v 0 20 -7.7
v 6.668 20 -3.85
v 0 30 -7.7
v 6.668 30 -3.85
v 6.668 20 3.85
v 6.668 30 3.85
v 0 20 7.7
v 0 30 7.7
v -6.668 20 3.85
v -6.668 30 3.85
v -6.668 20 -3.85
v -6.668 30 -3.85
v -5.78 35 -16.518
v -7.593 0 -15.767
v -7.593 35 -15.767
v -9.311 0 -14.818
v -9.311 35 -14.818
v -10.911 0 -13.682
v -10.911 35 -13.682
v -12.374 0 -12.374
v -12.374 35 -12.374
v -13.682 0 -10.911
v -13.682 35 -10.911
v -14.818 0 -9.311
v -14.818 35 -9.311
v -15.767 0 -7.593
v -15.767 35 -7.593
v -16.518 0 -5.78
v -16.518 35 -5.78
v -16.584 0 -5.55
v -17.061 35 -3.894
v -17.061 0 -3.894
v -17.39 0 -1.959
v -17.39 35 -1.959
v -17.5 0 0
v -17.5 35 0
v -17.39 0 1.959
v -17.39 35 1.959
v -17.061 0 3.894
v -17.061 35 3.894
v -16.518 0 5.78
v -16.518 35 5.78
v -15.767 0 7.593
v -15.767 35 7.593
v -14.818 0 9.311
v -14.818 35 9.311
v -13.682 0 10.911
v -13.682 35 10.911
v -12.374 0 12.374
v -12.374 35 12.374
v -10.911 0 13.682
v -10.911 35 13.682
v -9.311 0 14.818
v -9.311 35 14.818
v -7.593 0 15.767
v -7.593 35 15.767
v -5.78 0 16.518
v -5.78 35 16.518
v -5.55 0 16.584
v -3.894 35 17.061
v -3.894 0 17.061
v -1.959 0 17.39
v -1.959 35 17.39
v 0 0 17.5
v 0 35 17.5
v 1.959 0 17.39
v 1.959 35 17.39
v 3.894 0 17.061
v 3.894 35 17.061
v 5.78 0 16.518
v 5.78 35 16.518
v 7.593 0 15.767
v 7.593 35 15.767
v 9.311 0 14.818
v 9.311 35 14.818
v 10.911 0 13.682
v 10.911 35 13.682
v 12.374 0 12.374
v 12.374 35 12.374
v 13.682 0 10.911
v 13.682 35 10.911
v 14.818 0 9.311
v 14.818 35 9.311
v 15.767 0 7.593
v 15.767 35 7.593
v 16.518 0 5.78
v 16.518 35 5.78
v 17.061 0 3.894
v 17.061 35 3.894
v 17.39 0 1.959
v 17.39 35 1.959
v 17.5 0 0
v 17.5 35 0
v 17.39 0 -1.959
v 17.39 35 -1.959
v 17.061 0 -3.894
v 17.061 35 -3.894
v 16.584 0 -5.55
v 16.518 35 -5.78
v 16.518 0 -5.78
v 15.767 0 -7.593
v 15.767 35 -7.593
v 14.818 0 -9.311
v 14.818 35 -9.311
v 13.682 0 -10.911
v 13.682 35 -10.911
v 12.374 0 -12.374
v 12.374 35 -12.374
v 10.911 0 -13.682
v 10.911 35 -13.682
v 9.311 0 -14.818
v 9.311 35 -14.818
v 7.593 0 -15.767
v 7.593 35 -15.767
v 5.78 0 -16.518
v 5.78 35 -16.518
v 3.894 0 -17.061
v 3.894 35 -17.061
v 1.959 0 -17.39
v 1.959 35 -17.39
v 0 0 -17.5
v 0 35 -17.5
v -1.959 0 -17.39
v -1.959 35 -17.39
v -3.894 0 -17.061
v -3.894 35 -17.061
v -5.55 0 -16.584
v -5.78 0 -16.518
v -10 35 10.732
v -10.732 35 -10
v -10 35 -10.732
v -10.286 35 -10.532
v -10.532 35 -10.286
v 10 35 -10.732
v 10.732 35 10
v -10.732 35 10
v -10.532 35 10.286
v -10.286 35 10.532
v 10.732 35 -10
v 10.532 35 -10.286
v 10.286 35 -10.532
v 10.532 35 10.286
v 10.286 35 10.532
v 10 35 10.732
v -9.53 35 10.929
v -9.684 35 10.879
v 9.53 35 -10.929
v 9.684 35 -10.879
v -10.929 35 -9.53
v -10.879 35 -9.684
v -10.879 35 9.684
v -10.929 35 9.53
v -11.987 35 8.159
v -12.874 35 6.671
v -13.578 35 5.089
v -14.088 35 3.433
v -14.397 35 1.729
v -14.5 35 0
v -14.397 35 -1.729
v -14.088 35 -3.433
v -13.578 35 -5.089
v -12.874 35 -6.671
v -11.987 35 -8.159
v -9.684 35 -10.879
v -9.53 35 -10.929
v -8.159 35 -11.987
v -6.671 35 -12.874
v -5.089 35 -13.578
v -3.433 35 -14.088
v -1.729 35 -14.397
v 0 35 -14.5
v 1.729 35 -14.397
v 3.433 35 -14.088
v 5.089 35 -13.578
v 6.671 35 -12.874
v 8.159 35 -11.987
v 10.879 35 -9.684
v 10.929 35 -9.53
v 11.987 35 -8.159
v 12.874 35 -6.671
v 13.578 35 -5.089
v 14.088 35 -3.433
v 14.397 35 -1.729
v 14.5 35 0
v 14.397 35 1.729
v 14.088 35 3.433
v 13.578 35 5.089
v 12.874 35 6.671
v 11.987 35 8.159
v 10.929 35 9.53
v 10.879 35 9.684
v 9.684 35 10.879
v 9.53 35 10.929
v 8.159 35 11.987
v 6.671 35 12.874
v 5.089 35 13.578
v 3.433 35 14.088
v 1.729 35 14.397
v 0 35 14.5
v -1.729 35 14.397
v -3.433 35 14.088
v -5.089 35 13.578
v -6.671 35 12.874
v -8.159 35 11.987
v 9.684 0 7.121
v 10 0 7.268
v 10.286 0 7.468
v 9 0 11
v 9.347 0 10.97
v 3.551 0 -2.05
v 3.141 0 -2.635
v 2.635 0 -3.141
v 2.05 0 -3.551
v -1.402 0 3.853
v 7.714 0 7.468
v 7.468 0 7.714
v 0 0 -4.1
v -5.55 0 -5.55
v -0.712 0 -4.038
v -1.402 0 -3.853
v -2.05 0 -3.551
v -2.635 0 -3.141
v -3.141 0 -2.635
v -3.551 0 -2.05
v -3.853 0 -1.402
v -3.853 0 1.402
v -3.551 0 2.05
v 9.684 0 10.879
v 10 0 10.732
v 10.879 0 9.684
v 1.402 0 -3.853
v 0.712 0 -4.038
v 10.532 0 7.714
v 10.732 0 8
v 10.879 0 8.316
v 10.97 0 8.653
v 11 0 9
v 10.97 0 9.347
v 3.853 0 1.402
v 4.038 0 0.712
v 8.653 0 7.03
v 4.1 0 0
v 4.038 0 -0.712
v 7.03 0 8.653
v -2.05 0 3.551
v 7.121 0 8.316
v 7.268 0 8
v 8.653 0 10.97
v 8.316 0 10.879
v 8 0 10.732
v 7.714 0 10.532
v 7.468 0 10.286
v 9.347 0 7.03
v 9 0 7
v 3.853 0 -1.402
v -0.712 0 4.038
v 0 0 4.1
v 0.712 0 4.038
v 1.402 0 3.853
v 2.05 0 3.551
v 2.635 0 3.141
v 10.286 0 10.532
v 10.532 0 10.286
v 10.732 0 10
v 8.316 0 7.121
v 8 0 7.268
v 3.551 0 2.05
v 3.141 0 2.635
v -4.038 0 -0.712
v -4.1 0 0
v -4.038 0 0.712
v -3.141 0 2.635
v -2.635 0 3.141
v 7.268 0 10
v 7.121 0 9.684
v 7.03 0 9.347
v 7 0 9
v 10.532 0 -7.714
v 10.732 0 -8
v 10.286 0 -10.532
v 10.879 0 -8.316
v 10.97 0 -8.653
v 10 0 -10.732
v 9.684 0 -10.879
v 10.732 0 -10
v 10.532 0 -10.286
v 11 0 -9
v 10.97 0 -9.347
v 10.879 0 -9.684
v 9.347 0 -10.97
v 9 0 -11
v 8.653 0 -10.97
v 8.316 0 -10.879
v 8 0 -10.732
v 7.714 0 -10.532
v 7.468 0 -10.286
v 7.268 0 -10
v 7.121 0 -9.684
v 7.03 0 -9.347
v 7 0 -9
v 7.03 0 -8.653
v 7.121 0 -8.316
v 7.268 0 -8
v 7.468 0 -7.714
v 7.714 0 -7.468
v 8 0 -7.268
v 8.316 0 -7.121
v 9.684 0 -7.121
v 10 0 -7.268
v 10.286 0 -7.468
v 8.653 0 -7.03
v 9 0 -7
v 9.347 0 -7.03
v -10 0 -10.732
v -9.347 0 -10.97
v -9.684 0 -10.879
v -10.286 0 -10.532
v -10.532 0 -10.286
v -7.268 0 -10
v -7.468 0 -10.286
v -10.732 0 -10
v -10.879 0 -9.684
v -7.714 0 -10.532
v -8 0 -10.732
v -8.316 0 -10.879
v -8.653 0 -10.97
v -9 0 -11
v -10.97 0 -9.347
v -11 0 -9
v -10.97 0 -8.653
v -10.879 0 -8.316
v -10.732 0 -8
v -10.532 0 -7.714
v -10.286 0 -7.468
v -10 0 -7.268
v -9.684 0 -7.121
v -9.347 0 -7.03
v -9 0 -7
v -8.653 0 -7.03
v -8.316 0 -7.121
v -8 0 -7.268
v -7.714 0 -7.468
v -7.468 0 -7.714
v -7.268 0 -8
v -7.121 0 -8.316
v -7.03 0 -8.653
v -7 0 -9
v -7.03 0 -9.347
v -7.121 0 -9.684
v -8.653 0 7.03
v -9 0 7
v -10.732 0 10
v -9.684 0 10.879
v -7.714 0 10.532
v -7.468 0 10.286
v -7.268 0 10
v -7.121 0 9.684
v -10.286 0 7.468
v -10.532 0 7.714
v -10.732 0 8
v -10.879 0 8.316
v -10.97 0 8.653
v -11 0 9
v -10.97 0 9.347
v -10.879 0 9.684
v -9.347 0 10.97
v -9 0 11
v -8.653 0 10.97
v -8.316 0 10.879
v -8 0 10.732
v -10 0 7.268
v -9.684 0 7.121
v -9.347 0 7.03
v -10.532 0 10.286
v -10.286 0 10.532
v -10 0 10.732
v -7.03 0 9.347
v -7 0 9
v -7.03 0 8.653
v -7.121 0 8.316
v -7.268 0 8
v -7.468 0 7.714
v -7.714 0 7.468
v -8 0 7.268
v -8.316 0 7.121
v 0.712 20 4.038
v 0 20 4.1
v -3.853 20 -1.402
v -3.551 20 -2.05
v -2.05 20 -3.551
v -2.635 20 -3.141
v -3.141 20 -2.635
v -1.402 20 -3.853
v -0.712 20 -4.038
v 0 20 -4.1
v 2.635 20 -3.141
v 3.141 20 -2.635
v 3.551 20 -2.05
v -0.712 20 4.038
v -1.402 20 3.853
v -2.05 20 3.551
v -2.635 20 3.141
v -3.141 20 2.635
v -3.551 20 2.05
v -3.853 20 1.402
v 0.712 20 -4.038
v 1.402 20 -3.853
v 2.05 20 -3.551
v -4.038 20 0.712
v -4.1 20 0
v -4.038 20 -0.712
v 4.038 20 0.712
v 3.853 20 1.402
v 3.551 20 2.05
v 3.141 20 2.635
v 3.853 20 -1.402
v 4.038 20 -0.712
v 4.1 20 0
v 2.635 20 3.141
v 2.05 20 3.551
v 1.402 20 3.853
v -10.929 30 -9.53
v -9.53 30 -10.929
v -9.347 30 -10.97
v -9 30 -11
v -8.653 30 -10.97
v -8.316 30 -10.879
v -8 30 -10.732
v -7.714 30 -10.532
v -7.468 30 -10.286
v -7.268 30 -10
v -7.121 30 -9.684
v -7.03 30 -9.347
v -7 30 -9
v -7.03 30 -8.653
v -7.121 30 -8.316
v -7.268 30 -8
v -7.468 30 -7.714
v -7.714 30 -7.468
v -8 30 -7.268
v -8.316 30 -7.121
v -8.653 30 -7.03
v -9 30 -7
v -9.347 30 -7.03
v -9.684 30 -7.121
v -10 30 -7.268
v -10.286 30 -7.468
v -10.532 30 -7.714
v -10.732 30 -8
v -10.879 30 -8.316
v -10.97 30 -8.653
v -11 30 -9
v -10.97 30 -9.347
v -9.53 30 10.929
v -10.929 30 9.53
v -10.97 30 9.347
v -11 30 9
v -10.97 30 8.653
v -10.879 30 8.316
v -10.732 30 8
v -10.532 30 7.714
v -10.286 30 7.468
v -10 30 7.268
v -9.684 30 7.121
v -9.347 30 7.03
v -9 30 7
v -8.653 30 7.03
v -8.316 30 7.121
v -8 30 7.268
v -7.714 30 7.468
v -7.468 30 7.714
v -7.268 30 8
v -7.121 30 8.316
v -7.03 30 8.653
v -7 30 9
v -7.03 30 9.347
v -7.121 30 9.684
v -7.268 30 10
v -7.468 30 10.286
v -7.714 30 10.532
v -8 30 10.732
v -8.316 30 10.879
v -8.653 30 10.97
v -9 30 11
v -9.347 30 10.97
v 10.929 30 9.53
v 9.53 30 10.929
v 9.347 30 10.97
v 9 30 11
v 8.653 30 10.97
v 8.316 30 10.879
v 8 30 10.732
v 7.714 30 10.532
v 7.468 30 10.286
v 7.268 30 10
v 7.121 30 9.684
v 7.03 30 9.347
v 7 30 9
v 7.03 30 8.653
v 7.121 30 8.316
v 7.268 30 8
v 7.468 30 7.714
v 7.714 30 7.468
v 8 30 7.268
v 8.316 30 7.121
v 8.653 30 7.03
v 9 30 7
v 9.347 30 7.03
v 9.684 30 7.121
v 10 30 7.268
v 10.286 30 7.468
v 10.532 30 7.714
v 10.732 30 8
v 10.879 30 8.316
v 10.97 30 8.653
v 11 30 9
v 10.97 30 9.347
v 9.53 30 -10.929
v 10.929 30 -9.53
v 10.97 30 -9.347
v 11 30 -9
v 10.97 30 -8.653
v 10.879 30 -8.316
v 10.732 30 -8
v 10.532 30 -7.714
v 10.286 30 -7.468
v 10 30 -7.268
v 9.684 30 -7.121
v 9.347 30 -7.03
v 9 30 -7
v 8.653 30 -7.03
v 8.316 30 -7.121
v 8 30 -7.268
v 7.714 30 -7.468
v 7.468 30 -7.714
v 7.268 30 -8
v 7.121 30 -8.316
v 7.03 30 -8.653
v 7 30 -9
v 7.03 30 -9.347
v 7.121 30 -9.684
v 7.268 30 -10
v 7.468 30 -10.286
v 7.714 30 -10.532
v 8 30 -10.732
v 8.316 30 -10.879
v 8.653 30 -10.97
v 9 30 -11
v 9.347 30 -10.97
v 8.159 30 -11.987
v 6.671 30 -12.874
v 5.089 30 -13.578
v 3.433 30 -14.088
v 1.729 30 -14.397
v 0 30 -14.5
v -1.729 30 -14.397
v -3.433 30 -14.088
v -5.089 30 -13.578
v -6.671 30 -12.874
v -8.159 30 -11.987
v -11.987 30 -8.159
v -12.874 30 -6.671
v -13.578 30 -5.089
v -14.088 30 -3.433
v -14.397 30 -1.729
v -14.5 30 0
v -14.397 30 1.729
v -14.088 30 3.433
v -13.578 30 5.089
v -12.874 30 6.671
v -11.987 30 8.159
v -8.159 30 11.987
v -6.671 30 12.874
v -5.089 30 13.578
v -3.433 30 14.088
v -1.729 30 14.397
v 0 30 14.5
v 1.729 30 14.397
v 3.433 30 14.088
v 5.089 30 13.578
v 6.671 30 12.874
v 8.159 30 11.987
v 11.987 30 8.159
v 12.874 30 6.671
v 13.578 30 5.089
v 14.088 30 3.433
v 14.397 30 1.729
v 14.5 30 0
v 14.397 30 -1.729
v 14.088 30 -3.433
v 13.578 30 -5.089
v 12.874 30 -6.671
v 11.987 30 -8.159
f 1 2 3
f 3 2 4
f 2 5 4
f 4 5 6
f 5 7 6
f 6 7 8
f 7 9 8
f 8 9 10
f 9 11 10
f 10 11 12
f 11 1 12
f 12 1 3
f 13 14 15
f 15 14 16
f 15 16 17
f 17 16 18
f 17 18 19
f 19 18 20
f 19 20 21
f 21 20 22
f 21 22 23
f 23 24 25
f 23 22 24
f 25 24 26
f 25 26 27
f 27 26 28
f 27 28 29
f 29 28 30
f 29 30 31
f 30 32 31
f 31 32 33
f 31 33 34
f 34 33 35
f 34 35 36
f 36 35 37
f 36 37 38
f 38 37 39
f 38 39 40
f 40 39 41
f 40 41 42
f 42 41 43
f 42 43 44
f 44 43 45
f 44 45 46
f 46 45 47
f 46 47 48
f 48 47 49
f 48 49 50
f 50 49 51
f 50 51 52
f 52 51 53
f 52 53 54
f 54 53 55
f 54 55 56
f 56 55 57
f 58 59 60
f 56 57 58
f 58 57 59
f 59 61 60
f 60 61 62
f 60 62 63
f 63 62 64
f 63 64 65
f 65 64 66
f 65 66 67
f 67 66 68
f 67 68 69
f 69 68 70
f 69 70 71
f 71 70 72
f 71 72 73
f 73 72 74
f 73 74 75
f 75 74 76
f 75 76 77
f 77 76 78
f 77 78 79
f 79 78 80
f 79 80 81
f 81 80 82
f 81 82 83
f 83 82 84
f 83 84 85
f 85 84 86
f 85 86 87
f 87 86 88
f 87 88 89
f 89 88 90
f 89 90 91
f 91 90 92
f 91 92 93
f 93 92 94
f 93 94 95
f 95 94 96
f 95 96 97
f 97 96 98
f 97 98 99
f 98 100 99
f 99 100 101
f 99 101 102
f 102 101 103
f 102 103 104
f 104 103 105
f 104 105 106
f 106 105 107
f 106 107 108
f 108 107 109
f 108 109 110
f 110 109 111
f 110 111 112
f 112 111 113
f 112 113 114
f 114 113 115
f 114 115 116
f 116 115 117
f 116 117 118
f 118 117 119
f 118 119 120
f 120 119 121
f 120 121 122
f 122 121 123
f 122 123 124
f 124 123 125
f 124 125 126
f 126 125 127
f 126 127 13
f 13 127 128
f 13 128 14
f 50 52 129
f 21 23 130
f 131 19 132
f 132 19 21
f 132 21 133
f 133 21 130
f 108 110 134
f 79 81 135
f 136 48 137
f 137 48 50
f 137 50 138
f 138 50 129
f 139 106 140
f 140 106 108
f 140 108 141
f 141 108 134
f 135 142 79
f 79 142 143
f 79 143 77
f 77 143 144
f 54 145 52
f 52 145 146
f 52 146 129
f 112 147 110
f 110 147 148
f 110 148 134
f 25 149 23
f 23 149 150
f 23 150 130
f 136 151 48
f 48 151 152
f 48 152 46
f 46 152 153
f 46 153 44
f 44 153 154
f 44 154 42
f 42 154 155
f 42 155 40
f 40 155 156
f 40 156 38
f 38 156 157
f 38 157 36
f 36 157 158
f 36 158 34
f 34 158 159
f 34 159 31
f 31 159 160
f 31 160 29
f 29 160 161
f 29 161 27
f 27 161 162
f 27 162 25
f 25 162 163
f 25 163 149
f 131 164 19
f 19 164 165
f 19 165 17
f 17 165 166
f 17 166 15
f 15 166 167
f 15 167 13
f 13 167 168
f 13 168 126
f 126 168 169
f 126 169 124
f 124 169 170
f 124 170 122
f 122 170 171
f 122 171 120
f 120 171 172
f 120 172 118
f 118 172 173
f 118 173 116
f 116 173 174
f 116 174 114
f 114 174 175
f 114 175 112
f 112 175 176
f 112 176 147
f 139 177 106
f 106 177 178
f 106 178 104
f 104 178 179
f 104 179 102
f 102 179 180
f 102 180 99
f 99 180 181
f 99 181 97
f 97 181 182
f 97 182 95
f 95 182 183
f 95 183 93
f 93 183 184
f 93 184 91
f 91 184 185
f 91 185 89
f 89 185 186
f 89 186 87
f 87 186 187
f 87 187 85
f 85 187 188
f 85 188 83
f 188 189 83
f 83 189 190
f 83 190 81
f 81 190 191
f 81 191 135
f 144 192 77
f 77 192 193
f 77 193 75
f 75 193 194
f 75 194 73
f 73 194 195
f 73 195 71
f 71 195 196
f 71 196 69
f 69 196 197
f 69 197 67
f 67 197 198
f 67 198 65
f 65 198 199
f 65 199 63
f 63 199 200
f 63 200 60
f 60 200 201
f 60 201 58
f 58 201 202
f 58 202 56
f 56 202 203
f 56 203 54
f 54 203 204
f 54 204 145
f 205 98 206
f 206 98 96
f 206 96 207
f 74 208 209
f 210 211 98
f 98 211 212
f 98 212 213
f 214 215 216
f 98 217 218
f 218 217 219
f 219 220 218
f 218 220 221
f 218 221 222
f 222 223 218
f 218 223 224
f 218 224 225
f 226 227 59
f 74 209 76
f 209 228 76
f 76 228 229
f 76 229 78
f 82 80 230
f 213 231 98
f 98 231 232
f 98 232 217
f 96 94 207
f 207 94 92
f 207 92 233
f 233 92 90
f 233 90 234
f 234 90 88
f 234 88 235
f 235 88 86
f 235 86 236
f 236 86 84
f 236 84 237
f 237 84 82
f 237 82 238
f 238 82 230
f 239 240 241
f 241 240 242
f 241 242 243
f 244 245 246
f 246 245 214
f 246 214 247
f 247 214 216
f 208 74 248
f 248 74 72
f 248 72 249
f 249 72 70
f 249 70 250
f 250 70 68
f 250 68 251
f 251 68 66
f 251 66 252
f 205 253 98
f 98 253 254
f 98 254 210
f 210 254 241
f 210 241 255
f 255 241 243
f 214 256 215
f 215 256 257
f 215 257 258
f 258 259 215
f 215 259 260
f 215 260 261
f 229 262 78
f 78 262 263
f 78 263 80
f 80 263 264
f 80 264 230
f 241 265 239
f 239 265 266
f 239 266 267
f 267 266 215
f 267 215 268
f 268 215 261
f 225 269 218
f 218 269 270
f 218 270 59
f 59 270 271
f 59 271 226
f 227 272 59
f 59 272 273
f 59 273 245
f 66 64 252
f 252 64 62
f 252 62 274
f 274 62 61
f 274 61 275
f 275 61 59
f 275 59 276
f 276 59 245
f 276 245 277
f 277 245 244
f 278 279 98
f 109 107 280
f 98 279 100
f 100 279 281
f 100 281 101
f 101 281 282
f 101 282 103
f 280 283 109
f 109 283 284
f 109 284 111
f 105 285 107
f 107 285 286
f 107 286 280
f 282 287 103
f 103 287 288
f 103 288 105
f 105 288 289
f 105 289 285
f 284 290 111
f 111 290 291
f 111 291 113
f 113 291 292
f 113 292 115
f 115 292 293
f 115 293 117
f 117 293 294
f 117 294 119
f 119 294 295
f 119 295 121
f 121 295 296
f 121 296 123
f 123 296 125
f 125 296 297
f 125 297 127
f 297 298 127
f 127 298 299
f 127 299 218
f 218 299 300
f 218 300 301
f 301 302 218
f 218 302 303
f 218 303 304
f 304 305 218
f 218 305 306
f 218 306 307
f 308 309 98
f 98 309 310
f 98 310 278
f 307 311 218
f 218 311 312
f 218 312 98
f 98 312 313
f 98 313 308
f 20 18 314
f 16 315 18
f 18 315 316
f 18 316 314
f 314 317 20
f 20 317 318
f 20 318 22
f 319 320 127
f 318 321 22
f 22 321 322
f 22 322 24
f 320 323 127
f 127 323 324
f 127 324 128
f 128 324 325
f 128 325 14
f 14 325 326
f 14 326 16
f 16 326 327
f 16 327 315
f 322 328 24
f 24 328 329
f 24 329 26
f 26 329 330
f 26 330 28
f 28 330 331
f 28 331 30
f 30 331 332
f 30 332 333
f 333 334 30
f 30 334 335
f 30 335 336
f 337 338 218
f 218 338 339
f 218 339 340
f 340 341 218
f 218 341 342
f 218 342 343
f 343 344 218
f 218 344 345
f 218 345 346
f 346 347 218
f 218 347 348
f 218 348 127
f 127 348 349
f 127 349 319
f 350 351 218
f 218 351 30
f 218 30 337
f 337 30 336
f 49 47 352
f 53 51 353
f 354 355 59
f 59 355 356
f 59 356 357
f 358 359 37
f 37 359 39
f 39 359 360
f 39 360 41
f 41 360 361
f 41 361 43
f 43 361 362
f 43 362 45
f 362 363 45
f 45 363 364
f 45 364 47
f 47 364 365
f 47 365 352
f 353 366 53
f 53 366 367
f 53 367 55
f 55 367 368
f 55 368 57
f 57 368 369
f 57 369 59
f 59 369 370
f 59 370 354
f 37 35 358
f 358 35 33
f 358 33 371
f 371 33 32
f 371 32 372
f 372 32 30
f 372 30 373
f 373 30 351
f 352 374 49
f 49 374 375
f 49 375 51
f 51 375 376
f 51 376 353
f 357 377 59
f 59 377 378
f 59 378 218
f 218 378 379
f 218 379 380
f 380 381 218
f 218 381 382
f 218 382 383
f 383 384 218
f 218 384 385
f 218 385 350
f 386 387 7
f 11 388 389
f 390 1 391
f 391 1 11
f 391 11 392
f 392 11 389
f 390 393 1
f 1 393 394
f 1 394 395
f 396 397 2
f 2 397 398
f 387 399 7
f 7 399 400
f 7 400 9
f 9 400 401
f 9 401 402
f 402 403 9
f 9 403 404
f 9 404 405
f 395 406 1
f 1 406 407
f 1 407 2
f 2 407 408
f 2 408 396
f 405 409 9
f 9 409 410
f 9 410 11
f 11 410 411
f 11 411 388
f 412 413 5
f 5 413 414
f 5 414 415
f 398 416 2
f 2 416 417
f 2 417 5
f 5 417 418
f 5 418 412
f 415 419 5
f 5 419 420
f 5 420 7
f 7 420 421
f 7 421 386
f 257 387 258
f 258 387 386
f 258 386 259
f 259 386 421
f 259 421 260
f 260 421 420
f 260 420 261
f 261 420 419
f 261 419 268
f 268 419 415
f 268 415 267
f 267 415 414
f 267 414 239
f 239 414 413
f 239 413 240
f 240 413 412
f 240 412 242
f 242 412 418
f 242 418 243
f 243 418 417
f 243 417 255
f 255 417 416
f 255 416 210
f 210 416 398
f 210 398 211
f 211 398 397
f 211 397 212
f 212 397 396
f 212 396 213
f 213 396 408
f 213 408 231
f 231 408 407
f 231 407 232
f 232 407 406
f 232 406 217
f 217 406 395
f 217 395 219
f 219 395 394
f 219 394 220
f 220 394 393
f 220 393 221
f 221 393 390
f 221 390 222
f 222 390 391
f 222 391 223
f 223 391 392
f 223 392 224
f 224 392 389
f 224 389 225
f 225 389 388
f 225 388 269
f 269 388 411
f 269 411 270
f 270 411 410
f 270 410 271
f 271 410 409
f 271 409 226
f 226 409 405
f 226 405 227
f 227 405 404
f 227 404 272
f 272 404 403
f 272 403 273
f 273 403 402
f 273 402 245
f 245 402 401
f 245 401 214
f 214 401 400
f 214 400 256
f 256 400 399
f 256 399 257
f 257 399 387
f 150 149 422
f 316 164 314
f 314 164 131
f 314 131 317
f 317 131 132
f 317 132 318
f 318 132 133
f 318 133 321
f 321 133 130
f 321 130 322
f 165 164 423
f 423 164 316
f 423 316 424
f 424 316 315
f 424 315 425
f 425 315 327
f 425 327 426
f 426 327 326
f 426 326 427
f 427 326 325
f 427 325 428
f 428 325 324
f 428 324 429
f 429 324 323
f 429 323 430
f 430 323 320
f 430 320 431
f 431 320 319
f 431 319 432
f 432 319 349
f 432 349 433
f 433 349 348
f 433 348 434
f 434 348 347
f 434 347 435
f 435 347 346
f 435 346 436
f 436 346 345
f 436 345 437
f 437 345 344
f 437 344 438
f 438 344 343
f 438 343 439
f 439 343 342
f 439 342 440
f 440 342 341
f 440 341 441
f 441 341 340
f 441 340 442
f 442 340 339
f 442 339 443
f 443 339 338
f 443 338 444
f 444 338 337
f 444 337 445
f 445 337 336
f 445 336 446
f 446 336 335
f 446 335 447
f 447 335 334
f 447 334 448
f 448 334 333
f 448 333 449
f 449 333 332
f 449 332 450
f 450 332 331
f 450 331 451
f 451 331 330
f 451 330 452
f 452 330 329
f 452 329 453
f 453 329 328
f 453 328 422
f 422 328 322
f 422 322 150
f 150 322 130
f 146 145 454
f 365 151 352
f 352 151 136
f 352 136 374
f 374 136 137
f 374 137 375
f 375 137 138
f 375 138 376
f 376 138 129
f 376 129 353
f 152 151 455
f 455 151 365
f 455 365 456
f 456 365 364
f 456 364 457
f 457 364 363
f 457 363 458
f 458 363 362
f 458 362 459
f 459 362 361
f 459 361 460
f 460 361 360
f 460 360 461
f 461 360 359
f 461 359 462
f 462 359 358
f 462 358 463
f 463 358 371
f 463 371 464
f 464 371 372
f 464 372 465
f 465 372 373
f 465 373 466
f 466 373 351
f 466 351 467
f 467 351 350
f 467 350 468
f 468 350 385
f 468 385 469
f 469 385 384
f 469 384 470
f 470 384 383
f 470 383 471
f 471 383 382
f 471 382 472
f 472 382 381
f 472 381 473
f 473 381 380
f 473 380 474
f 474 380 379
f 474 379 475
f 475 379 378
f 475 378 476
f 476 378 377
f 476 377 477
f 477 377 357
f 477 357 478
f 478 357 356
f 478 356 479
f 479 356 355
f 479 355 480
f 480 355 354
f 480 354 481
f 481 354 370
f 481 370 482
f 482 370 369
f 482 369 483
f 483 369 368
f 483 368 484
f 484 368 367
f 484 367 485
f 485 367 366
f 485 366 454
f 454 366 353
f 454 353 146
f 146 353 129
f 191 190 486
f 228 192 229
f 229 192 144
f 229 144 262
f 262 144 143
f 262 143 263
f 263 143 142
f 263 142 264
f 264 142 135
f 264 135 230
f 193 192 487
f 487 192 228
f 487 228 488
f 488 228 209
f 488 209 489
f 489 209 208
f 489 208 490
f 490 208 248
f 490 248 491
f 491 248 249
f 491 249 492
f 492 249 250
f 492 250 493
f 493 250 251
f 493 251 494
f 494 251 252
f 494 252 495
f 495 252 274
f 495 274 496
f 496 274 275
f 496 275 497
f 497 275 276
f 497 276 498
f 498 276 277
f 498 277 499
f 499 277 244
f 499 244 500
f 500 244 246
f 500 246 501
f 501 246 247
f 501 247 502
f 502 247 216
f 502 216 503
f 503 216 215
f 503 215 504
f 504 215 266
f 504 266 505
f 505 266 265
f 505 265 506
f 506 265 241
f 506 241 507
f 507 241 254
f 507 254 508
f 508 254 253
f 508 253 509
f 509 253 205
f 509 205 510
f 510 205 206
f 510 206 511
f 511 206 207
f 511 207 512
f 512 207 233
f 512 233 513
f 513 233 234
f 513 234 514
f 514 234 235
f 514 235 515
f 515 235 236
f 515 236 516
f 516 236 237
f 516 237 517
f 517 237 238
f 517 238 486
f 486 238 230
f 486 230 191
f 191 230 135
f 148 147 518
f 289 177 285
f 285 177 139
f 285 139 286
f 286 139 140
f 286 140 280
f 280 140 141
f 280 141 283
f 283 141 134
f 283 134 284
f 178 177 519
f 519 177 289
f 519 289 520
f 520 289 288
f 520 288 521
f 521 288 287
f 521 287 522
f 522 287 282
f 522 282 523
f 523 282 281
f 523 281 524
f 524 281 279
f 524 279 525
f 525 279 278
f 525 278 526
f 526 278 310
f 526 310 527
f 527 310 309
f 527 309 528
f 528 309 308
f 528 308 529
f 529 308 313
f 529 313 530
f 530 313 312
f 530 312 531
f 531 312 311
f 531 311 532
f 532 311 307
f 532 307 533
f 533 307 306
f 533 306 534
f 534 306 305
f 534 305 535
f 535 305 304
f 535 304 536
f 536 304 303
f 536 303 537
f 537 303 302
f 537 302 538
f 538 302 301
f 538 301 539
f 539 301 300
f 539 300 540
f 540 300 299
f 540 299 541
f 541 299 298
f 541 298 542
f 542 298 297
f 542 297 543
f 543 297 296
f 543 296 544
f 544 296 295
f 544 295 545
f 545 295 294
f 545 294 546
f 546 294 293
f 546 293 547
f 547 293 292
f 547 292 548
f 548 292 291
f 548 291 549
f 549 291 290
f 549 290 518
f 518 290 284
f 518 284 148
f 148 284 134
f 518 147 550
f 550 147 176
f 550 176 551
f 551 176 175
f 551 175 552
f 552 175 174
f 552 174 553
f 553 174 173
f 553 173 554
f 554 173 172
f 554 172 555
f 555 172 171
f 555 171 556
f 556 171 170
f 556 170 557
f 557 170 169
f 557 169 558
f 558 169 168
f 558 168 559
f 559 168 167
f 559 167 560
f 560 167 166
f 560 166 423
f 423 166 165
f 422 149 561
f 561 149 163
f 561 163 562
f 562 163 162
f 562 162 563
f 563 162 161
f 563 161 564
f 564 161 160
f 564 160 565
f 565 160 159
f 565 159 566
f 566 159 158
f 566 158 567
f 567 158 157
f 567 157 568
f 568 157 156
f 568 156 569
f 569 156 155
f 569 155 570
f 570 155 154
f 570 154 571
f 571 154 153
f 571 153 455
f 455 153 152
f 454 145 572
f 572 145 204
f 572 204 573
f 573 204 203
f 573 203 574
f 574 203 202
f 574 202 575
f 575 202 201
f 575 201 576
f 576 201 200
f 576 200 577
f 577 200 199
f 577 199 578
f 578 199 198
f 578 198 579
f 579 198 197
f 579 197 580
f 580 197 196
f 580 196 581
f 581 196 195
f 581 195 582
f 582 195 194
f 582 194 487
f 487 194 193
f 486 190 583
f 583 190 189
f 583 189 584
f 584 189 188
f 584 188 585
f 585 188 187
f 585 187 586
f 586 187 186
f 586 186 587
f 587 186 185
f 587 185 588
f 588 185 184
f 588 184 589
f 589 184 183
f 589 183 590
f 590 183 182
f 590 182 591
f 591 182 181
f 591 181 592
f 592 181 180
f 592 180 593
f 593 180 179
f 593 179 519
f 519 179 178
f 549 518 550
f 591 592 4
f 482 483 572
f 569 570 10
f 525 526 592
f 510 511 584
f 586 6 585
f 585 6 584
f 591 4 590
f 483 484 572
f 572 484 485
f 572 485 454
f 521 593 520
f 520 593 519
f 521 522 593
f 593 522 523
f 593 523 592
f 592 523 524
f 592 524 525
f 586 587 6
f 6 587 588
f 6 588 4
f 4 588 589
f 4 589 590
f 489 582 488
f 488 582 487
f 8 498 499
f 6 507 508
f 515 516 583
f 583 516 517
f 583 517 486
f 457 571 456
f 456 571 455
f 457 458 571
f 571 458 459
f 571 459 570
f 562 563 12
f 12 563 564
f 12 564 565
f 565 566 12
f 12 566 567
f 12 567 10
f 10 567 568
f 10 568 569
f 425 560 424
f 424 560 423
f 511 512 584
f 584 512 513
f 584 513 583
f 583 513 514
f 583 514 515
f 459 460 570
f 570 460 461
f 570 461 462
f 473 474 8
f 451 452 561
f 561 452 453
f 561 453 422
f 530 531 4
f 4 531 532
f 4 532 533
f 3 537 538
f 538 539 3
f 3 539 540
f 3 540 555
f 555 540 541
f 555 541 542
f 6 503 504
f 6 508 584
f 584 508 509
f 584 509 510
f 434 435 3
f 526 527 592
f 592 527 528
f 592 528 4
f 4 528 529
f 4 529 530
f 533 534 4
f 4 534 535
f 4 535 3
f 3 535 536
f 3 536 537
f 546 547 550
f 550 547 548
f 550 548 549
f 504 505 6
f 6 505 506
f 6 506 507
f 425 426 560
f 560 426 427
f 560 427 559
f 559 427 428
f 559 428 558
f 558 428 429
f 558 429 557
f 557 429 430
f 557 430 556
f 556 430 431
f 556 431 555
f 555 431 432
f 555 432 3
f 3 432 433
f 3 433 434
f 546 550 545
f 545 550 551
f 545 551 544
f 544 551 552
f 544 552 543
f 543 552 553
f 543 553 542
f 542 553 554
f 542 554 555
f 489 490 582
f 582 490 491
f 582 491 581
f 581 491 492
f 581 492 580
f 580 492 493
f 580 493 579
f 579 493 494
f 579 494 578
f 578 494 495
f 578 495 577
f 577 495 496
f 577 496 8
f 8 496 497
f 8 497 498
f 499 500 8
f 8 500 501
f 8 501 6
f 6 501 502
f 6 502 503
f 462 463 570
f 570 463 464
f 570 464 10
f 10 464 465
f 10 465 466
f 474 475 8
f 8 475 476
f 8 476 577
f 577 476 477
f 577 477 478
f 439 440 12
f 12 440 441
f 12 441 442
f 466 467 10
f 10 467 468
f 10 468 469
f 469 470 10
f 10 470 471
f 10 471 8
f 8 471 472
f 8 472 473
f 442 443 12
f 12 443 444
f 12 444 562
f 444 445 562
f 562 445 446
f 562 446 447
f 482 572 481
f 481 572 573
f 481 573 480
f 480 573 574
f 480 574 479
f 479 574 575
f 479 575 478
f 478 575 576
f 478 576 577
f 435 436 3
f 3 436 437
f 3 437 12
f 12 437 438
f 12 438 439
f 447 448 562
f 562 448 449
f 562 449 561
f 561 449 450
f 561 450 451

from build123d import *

# Parameters (mm, degrees)
SKETCH1_R           = 17.5
BOSS_EXTRUDE1_DEPTH = 35
CUT_EXTRUDE1_DEPTH  = 15
SKETCH3_R           = 4.1
CUT_EXTRUDE2_DEPTH  = 32.819805153
SKETCH4_R           = 2
CUT_EXTRUDE3_DEPTH  = 43.866070499
SKETCH5_R           = 14.5
CUT_EXTRUDE4_DEPTH  = 5


with BuildPart() as part:
    # Sketch1 → Boss-Extrude1 (new body)
    with BuildSketch(Plane(origin=(0, 0, 0), x_dir=(1, 0, 0), z_dir=(0, 1, 0))):
        with Locations(Location((0, 0, 0), (0, 0, 270))):
            Circle(SKETCH1_R)
    extrude(amount=BOSS_EXTRUDE1_DEPTH)

    # Sketch2 → Cut-Extrude1 (cut)
    with BuildSketch(Plane(origin=(0, 35, 0), x_dir=(1, 0, 0), z_dir=(0, 1, 0))):
        Polygon((0, 7.7), (-6.668395609, 3.85), (-6.668395609, -3.85), (0, -7.7), (6.668395609, -3.85), (6.668395609, 3.85), align=None)
    extrude(amount=-CUT_EXTRUDE1_DEPTH, mode=Mode.SUBTRACT)

    # Sketch3 → Cut-Extrude2 (cut, through all)
    with BuildSketch(Plane(origin=(0, 20, 0), x_dir=(1, 0, 0), z_dir=(0, 1, 0))):
        with Locations(Location((0, 0, 0), (0, 0, 270))):
            Circle(SKETCH3_R)
    extrude(amount=-CUT_EXTRUDE2_DEPTH, mode=Mode.SUBTRACT)

    # Sketch4 → Cut-Extrude3 (cut, through all)
    with BuildSketch(Plane(origin=(0, 35, 0), x_dir=(1, 0, 0), z_dir=(0, 1, 0))):
        with Locations(Location((-9, 9, 0), (0, 0, 270))):
            Circle(SKETCH4_R)
        with Locations(Location((9, 9, 0), (0, 0, 270))):
            Circle(SKETCH4_R)
        with Locations(Location((9, -9, 0), (0, 0, 270))):
            Circle(SKETCH4_R)
        with Locations(Location((-9, -9, 0), (0, 0, 270))):
            Circle(SKETCH4_R)
    extrude(amount=-CUT_EXTRUDE3_DEPTH, mode=Mode.SUBTRACT)

    # Sketch5 → Cut-Extrude4 (cut)
    with BuildSketch(Plane(origin=(0, 35, 0), x_dir=(1, 0, 0), z_dir=(0, 1, 0))):
        Circle(SKETCH5_R)
    extrude(amount=-CUT_EXTRUDE4_DEPTH, mode=Mode.SUBTRACT)


solid = part.part
